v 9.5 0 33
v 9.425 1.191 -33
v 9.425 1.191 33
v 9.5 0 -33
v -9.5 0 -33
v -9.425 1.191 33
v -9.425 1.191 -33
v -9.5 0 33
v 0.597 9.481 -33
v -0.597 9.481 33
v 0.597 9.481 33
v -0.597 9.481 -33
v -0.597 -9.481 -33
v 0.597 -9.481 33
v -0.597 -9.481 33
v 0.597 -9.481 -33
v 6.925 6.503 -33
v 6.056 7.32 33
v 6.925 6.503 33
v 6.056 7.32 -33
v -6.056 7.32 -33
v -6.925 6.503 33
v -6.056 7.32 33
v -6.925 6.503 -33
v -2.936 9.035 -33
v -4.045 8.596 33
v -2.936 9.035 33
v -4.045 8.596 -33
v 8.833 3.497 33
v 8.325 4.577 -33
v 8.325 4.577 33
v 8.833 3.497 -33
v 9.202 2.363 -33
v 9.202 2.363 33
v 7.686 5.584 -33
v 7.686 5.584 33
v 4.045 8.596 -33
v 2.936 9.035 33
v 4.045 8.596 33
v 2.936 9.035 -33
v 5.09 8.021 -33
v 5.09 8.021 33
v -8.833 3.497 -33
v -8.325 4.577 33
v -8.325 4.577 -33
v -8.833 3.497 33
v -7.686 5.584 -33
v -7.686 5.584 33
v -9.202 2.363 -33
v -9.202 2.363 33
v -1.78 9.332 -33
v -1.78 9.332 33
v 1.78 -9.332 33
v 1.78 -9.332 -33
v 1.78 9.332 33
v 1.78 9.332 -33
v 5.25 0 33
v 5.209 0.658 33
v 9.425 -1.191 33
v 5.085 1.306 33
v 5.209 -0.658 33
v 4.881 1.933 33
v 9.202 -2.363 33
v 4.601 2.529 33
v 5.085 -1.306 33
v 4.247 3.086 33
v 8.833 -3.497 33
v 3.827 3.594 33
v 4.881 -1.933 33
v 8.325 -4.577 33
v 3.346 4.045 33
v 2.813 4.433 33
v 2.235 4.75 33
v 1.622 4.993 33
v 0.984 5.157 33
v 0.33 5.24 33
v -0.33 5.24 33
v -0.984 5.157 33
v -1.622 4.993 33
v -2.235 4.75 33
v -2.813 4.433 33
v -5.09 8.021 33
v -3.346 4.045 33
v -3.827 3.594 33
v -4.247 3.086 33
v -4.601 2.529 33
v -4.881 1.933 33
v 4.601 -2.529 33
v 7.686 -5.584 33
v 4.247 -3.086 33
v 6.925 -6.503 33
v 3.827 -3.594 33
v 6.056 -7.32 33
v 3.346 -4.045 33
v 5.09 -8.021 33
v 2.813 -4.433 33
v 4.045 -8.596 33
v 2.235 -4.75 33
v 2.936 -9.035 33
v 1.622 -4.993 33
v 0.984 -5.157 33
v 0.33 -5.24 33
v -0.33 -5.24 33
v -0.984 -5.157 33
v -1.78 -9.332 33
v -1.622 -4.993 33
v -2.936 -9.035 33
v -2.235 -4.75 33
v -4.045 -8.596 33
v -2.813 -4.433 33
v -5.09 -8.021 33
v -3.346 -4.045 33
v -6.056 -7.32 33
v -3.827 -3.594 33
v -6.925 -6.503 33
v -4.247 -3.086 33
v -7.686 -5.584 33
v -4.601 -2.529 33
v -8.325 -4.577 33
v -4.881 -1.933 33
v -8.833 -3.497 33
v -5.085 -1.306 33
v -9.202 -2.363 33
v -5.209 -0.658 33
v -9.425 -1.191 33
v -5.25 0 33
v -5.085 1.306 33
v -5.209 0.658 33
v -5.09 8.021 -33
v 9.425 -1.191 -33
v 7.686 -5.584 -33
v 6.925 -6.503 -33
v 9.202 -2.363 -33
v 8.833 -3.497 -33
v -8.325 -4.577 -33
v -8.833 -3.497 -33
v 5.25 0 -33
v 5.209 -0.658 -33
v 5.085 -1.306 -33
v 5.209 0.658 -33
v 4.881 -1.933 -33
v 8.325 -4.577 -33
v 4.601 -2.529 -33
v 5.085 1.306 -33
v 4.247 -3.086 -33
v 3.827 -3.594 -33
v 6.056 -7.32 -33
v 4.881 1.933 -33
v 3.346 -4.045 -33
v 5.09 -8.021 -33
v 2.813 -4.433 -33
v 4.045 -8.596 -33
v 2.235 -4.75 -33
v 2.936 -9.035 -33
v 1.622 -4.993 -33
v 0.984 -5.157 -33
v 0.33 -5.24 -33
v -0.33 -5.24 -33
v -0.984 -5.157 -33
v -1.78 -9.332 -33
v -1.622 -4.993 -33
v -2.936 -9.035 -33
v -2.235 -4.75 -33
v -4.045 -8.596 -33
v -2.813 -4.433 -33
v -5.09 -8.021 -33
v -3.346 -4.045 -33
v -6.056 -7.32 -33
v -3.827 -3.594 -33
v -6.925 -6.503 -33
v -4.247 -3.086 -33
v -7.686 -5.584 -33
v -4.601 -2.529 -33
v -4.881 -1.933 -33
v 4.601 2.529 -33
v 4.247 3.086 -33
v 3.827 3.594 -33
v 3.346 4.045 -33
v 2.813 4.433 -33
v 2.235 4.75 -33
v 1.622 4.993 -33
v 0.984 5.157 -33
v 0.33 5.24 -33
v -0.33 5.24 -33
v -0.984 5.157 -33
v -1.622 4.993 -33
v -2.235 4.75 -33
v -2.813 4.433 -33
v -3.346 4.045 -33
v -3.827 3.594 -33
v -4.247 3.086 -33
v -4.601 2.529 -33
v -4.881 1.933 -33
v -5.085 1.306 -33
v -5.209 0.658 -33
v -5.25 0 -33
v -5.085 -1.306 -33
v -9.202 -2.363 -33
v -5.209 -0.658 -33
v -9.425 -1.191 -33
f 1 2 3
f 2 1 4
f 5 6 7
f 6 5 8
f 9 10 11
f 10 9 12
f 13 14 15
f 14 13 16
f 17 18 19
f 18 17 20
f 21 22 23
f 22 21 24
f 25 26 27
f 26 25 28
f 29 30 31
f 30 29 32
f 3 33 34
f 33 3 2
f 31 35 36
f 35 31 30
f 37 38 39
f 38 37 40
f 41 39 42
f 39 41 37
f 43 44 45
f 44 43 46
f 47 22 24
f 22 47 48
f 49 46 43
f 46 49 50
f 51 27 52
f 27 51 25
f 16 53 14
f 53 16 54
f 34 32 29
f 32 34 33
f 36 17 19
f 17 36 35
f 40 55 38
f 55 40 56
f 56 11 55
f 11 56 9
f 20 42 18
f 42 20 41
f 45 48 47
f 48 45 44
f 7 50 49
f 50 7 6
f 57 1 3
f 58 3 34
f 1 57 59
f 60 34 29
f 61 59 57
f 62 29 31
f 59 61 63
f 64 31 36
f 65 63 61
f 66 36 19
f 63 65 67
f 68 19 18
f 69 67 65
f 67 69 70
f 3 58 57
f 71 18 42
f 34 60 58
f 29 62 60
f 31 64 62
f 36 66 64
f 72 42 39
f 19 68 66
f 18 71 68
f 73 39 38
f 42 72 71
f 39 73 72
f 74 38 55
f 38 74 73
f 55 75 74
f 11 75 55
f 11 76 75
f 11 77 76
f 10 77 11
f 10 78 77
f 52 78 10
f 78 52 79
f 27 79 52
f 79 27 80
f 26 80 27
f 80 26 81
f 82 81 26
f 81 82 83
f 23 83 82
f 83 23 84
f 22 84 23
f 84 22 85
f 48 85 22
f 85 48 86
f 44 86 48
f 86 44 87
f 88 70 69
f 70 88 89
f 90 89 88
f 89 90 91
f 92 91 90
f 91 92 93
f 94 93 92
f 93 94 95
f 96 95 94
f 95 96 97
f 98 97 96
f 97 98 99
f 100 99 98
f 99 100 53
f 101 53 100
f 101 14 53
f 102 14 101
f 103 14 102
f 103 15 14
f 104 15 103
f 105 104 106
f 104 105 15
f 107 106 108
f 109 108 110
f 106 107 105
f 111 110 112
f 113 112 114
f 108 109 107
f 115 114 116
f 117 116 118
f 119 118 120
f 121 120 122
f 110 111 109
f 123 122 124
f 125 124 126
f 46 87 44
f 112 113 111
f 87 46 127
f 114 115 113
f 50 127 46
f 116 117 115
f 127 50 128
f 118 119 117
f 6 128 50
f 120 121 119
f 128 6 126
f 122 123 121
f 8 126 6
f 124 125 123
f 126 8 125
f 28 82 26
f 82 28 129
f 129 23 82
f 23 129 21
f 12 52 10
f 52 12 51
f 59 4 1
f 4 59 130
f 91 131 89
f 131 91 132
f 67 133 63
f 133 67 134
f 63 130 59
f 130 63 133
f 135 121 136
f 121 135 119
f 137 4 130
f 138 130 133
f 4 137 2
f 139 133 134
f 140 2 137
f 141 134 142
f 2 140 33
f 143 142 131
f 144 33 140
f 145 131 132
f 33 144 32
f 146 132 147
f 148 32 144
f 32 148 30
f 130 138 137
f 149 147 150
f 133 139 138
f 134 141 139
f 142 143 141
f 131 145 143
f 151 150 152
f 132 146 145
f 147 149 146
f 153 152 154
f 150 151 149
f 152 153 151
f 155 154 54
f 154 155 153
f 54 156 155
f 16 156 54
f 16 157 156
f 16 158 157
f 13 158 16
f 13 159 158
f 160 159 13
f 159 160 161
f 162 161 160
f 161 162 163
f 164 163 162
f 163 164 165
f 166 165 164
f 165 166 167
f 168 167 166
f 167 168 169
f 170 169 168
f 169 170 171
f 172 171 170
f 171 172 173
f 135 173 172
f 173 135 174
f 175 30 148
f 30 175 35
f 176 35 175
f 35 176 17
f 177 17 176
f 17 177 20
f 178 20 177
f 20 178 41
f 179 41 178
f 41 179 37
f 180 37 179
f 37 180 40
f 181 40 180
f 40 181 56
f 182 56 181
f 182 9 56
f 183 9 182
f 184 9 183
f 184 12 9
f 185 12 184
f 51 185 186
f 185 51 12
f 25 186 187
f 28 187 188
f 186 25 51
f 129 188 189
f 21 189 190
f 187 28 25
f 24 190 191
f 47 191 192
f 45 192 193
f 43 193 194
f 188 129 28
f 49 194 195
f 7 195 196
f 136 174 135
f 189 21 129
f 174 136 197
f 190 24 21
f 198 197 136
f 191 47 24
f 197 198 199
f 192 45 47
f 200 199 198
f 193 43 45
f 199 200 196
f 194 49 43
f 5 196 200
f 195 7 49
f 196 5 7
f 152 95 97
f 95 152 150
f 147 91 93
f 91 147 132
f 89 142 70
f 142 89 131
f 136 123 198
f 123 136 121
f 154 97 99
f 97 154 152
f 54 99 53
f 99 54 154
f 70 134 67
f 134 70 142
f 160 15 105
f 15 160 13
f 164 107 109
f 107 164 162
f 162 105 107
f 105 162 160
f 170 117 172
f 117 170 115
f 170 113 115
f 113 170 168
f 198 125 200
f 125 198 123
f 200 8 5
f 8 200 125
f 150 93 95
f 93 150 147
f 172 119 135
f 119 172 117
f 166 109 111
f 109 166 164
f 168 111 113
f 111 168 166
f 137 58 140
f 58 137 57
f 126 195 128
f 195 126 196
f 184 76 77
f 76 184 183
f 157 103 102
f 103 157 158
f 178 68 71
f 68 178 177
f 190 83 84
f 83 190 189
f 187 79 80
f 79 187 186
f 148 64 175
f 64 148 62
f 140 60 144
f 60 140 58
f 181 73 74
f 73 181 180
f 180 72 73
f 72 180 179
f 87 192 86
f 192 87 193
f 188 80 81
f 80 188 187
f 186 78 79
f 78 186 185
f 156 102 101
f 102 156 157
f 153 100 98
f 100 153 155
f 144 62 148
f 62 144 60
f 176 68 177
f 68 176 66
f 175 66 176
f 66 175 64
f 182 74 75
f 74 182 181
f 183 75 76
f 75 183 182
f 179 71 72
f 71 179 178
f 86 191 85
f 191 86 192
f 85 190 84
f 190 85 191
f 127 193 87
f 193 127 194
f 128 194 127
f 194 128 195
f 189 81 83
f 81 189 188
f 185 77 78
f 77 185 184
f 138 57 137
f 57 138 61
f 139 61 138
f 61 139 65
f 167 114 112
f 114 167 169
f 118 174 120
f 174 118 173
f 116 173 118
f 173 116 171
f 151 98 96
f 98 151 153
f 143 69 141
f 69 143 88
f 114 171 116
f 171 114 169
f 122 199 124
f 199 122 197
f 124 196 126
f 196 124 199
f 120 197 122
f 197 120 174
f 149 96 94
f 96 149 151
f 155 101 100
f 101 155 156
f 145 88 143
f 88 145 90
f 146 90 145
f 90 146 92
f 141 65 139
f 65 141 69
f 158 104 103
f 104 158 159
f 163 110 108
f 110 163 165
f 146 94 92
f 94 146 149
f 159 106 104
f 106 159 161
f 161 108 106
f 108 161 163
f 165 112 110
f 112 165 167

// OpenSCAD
$fn = 50;


difference() {
	union() {
		translate(v = [0, 0, -33.0000000000]) {
			cylinder(h = 66, r = 9.5000000000);
		}
	}
	union() {
		translate(v = [0, 0, -100.0000000000]) {
			cylinder(h = 200, r = 5.2500000000);
		}
	}
}
